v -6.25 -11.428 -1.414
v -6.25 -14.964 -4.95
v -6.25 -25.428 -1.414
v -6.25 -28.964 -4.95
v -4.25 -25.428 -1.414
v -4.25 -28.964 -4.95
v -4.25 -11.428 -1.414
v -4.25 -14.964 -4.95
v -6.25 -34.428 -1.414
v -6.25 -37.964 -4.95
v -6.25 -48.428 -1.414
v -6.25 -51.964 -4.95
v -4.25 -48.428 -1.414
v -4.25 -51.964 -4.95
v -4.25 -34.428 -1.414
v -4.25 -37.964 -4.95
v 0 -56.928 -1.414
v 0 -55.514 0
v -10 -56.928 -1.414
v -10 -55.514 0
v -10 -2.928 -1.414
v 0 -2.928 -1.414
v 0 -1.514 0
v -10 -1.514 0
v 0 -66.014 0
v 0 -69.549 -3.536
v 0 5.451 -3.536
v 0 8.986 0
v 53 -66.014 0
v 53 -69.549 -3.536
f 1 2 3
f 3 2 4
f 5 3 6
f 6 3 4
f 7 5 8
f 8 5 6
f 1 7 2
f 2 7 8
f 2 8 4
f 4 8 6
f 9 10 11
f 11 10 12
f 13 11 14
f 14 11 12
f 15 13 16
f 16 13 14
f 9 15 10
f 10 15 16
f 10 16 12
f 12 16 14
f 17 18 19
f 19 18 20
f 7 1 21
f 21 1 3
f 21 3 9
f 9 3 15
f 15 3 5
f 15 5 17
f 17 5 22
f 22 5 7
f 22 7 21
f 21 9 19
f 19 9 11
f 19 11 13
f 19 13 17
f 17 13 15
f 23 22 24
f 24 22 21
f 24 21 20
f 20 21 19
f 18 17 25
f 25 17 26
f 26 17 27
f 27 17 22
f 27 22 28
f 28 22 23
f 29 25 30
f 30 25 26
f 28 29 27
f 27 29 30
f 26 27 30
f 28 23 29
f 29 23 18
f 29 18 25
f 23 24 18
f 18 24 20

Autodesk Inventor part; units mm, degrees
ref_plane "YZ Plane" through (0, 0, 0) normal (1, 0, 0) x (0, 1, 0)
ref_plane "XZ Plane" through (0, 0, 0) normal (0, 1, 0) x (-1, 0, 0)
ref_plane "XY Plane" through (0, 0, 0) normal (0, 0, 1) x (1, 0, 0)
sketch "Sketch1" plane through (0, 0, 0) normal (0, 0, 1) x (1, 0, 0)
  line L0 (0, 8.9862) -> (0, -66.0138)
  line L1 (0, 8.9862) -> (53, -66.0138)
  line L2 (0, -66.0138) -> (53, -66.0138)
  point P0 (0, 0)
  dimension "d0" = 75
  dimension "d39" = 53
sketch "Sketch2" plane through (0, 0, 0) normal (1, 0, 0) x (0, 1, 0)
  line L0 (4.5625, 0) -> (1.027, -3.5355)
  line L1 (1.9119, 0) -> (-2.0934, 0)
  point P0 (0, 0)
  dimension "d2" = 45
  dimension "d3" = 5
sweep "Sweep1" add profiles "Sketch1" path "Sketch2" path curves L0
sketch "Sketch3" plane through (0, -66.0138, 0) normal (-1, 0, 0) x (0, 0, 1)
  line L0 (0, 75) -> (0, 0) projected
  line L1 (0, 75) -> (-3.5355, 71.4645) projected
  line L2 (-3.5355, -3.5355) -> (-3.5355, 71.4645) projected
  line L3 (0, 0) -> (-3.5355, -3.5355) projected
  line L4 (0, 64.5) -> (-1.4142, 63.0858)
  line L5 (-1.4142, 63.0858) -> (-1.4142, 9.0858)
  line L6 (-1.4142, 9.0858) -> (0, 10.5)
  point P0 (0, 66.0138)
  dimension "d6" = 2
  dimension "d7" = 2
  dimension "d8" = 54
  dimension "d9" = 75
  dimension "d10" = 10.5
  dimension "d11" = 10.5
extrude "Extrusion1" add sketch "Sketch3" along normal blind 10 contours L0 L6 L5 L4
sketch "Sketch5" plane through (0, -56.9281, -1.4142) normal (0, 0, -1) x (-1, 0, 0)
  line L0 (0, 0) -> (0, 54) projected
  line L1 (0, 0) -> (10, 0) projected
  line L2 (10, 54) -> (10, 0) projected
  line L3 (0, 54) -> (10, 54) projected
  line L4 (4.25, 45.5) -> (6.25, 45.5)
  line L5 (6.25, 45.5) -> (6.25, 31.5)
  line L6 (6.25, 31.5) -> (4.25, 31.5)
  line L7 (4.25, 31.5) -> (4.25, 45.5)
  line L8 (4.25, 22.5) -> (6.25, 22.5)
  line L9 (6.25, 22.5) -> (6.25, 8.5)
  line L10 (6.25, 8.5) -> (4.25, 8.5)
  line L11 (4.25, 8.5) -> (4.25, 22.5)
  point P0 (0, 56.9281)
  dimension "d28" = 2
  dimension "d29" = 8.5
  dimension "d30" = 4.25
  dimension "d31" = 14
  dimension "d32" = 14
  dimension "d33" = 8.5
  dimension "d34" = 9
  dimension "d35" = 54
sketch "Sketch6" plane through (0, -69.5494, -3.5355) normal (-1, 0, 0) x (0, 0, 1)
  line L0 (3.5355, 14.0355) -> (2.1213, 12.6213) projected
  line L1 (2.1213, 12.6213) -> (2.1213, 66.6213) projected
  line L2 (2.1213, 66.6213) -> (3.5355, 68.0355) projected
  line L3 (3.5355, 78.5355) -> (3.5355, 68.0355) projected
  line L4 (3.5355, 78.5355) -> (0, 75) projected
  line L5 (0, 0) -> (0, 75) projected
  line L6 (3.5355, 3.5355) -> (0, 0) projected
  line L7 (3.5355, 14.0355) -> (3.5355, 3.5355) projected
  line L8 (3.5355, 68.0355) -> (2.1213, 66.6213) projected
  line L9 (2.1213, 66.6213) -> (2.1213, 12.6213) projected
  line L10 (2.1213, 12.6213) -> (3.5355, 14.0355) projected
  line L11 (3.5355, 14.0355) -> (3.5355, 68.0355) projected
  line L12 (2.1213, 64.596) -> (-1.4142, 61.0605)
  point P0 (3.5355, 69.5494)
  dimension "d36" = 5
sweep "Sweep2" add profiles "Sketch5" path "Sketch6" path curves L12 contours L4 L5 L6 L7 | L8 L9 L10 L11
equation "\"d10\" = -0.5 * d8 + 0.5 * d9"
equation "\"d32\" = d31"
equation "\"d33\" = d29"
properties part number "Rooft Extension Right Attachment"
